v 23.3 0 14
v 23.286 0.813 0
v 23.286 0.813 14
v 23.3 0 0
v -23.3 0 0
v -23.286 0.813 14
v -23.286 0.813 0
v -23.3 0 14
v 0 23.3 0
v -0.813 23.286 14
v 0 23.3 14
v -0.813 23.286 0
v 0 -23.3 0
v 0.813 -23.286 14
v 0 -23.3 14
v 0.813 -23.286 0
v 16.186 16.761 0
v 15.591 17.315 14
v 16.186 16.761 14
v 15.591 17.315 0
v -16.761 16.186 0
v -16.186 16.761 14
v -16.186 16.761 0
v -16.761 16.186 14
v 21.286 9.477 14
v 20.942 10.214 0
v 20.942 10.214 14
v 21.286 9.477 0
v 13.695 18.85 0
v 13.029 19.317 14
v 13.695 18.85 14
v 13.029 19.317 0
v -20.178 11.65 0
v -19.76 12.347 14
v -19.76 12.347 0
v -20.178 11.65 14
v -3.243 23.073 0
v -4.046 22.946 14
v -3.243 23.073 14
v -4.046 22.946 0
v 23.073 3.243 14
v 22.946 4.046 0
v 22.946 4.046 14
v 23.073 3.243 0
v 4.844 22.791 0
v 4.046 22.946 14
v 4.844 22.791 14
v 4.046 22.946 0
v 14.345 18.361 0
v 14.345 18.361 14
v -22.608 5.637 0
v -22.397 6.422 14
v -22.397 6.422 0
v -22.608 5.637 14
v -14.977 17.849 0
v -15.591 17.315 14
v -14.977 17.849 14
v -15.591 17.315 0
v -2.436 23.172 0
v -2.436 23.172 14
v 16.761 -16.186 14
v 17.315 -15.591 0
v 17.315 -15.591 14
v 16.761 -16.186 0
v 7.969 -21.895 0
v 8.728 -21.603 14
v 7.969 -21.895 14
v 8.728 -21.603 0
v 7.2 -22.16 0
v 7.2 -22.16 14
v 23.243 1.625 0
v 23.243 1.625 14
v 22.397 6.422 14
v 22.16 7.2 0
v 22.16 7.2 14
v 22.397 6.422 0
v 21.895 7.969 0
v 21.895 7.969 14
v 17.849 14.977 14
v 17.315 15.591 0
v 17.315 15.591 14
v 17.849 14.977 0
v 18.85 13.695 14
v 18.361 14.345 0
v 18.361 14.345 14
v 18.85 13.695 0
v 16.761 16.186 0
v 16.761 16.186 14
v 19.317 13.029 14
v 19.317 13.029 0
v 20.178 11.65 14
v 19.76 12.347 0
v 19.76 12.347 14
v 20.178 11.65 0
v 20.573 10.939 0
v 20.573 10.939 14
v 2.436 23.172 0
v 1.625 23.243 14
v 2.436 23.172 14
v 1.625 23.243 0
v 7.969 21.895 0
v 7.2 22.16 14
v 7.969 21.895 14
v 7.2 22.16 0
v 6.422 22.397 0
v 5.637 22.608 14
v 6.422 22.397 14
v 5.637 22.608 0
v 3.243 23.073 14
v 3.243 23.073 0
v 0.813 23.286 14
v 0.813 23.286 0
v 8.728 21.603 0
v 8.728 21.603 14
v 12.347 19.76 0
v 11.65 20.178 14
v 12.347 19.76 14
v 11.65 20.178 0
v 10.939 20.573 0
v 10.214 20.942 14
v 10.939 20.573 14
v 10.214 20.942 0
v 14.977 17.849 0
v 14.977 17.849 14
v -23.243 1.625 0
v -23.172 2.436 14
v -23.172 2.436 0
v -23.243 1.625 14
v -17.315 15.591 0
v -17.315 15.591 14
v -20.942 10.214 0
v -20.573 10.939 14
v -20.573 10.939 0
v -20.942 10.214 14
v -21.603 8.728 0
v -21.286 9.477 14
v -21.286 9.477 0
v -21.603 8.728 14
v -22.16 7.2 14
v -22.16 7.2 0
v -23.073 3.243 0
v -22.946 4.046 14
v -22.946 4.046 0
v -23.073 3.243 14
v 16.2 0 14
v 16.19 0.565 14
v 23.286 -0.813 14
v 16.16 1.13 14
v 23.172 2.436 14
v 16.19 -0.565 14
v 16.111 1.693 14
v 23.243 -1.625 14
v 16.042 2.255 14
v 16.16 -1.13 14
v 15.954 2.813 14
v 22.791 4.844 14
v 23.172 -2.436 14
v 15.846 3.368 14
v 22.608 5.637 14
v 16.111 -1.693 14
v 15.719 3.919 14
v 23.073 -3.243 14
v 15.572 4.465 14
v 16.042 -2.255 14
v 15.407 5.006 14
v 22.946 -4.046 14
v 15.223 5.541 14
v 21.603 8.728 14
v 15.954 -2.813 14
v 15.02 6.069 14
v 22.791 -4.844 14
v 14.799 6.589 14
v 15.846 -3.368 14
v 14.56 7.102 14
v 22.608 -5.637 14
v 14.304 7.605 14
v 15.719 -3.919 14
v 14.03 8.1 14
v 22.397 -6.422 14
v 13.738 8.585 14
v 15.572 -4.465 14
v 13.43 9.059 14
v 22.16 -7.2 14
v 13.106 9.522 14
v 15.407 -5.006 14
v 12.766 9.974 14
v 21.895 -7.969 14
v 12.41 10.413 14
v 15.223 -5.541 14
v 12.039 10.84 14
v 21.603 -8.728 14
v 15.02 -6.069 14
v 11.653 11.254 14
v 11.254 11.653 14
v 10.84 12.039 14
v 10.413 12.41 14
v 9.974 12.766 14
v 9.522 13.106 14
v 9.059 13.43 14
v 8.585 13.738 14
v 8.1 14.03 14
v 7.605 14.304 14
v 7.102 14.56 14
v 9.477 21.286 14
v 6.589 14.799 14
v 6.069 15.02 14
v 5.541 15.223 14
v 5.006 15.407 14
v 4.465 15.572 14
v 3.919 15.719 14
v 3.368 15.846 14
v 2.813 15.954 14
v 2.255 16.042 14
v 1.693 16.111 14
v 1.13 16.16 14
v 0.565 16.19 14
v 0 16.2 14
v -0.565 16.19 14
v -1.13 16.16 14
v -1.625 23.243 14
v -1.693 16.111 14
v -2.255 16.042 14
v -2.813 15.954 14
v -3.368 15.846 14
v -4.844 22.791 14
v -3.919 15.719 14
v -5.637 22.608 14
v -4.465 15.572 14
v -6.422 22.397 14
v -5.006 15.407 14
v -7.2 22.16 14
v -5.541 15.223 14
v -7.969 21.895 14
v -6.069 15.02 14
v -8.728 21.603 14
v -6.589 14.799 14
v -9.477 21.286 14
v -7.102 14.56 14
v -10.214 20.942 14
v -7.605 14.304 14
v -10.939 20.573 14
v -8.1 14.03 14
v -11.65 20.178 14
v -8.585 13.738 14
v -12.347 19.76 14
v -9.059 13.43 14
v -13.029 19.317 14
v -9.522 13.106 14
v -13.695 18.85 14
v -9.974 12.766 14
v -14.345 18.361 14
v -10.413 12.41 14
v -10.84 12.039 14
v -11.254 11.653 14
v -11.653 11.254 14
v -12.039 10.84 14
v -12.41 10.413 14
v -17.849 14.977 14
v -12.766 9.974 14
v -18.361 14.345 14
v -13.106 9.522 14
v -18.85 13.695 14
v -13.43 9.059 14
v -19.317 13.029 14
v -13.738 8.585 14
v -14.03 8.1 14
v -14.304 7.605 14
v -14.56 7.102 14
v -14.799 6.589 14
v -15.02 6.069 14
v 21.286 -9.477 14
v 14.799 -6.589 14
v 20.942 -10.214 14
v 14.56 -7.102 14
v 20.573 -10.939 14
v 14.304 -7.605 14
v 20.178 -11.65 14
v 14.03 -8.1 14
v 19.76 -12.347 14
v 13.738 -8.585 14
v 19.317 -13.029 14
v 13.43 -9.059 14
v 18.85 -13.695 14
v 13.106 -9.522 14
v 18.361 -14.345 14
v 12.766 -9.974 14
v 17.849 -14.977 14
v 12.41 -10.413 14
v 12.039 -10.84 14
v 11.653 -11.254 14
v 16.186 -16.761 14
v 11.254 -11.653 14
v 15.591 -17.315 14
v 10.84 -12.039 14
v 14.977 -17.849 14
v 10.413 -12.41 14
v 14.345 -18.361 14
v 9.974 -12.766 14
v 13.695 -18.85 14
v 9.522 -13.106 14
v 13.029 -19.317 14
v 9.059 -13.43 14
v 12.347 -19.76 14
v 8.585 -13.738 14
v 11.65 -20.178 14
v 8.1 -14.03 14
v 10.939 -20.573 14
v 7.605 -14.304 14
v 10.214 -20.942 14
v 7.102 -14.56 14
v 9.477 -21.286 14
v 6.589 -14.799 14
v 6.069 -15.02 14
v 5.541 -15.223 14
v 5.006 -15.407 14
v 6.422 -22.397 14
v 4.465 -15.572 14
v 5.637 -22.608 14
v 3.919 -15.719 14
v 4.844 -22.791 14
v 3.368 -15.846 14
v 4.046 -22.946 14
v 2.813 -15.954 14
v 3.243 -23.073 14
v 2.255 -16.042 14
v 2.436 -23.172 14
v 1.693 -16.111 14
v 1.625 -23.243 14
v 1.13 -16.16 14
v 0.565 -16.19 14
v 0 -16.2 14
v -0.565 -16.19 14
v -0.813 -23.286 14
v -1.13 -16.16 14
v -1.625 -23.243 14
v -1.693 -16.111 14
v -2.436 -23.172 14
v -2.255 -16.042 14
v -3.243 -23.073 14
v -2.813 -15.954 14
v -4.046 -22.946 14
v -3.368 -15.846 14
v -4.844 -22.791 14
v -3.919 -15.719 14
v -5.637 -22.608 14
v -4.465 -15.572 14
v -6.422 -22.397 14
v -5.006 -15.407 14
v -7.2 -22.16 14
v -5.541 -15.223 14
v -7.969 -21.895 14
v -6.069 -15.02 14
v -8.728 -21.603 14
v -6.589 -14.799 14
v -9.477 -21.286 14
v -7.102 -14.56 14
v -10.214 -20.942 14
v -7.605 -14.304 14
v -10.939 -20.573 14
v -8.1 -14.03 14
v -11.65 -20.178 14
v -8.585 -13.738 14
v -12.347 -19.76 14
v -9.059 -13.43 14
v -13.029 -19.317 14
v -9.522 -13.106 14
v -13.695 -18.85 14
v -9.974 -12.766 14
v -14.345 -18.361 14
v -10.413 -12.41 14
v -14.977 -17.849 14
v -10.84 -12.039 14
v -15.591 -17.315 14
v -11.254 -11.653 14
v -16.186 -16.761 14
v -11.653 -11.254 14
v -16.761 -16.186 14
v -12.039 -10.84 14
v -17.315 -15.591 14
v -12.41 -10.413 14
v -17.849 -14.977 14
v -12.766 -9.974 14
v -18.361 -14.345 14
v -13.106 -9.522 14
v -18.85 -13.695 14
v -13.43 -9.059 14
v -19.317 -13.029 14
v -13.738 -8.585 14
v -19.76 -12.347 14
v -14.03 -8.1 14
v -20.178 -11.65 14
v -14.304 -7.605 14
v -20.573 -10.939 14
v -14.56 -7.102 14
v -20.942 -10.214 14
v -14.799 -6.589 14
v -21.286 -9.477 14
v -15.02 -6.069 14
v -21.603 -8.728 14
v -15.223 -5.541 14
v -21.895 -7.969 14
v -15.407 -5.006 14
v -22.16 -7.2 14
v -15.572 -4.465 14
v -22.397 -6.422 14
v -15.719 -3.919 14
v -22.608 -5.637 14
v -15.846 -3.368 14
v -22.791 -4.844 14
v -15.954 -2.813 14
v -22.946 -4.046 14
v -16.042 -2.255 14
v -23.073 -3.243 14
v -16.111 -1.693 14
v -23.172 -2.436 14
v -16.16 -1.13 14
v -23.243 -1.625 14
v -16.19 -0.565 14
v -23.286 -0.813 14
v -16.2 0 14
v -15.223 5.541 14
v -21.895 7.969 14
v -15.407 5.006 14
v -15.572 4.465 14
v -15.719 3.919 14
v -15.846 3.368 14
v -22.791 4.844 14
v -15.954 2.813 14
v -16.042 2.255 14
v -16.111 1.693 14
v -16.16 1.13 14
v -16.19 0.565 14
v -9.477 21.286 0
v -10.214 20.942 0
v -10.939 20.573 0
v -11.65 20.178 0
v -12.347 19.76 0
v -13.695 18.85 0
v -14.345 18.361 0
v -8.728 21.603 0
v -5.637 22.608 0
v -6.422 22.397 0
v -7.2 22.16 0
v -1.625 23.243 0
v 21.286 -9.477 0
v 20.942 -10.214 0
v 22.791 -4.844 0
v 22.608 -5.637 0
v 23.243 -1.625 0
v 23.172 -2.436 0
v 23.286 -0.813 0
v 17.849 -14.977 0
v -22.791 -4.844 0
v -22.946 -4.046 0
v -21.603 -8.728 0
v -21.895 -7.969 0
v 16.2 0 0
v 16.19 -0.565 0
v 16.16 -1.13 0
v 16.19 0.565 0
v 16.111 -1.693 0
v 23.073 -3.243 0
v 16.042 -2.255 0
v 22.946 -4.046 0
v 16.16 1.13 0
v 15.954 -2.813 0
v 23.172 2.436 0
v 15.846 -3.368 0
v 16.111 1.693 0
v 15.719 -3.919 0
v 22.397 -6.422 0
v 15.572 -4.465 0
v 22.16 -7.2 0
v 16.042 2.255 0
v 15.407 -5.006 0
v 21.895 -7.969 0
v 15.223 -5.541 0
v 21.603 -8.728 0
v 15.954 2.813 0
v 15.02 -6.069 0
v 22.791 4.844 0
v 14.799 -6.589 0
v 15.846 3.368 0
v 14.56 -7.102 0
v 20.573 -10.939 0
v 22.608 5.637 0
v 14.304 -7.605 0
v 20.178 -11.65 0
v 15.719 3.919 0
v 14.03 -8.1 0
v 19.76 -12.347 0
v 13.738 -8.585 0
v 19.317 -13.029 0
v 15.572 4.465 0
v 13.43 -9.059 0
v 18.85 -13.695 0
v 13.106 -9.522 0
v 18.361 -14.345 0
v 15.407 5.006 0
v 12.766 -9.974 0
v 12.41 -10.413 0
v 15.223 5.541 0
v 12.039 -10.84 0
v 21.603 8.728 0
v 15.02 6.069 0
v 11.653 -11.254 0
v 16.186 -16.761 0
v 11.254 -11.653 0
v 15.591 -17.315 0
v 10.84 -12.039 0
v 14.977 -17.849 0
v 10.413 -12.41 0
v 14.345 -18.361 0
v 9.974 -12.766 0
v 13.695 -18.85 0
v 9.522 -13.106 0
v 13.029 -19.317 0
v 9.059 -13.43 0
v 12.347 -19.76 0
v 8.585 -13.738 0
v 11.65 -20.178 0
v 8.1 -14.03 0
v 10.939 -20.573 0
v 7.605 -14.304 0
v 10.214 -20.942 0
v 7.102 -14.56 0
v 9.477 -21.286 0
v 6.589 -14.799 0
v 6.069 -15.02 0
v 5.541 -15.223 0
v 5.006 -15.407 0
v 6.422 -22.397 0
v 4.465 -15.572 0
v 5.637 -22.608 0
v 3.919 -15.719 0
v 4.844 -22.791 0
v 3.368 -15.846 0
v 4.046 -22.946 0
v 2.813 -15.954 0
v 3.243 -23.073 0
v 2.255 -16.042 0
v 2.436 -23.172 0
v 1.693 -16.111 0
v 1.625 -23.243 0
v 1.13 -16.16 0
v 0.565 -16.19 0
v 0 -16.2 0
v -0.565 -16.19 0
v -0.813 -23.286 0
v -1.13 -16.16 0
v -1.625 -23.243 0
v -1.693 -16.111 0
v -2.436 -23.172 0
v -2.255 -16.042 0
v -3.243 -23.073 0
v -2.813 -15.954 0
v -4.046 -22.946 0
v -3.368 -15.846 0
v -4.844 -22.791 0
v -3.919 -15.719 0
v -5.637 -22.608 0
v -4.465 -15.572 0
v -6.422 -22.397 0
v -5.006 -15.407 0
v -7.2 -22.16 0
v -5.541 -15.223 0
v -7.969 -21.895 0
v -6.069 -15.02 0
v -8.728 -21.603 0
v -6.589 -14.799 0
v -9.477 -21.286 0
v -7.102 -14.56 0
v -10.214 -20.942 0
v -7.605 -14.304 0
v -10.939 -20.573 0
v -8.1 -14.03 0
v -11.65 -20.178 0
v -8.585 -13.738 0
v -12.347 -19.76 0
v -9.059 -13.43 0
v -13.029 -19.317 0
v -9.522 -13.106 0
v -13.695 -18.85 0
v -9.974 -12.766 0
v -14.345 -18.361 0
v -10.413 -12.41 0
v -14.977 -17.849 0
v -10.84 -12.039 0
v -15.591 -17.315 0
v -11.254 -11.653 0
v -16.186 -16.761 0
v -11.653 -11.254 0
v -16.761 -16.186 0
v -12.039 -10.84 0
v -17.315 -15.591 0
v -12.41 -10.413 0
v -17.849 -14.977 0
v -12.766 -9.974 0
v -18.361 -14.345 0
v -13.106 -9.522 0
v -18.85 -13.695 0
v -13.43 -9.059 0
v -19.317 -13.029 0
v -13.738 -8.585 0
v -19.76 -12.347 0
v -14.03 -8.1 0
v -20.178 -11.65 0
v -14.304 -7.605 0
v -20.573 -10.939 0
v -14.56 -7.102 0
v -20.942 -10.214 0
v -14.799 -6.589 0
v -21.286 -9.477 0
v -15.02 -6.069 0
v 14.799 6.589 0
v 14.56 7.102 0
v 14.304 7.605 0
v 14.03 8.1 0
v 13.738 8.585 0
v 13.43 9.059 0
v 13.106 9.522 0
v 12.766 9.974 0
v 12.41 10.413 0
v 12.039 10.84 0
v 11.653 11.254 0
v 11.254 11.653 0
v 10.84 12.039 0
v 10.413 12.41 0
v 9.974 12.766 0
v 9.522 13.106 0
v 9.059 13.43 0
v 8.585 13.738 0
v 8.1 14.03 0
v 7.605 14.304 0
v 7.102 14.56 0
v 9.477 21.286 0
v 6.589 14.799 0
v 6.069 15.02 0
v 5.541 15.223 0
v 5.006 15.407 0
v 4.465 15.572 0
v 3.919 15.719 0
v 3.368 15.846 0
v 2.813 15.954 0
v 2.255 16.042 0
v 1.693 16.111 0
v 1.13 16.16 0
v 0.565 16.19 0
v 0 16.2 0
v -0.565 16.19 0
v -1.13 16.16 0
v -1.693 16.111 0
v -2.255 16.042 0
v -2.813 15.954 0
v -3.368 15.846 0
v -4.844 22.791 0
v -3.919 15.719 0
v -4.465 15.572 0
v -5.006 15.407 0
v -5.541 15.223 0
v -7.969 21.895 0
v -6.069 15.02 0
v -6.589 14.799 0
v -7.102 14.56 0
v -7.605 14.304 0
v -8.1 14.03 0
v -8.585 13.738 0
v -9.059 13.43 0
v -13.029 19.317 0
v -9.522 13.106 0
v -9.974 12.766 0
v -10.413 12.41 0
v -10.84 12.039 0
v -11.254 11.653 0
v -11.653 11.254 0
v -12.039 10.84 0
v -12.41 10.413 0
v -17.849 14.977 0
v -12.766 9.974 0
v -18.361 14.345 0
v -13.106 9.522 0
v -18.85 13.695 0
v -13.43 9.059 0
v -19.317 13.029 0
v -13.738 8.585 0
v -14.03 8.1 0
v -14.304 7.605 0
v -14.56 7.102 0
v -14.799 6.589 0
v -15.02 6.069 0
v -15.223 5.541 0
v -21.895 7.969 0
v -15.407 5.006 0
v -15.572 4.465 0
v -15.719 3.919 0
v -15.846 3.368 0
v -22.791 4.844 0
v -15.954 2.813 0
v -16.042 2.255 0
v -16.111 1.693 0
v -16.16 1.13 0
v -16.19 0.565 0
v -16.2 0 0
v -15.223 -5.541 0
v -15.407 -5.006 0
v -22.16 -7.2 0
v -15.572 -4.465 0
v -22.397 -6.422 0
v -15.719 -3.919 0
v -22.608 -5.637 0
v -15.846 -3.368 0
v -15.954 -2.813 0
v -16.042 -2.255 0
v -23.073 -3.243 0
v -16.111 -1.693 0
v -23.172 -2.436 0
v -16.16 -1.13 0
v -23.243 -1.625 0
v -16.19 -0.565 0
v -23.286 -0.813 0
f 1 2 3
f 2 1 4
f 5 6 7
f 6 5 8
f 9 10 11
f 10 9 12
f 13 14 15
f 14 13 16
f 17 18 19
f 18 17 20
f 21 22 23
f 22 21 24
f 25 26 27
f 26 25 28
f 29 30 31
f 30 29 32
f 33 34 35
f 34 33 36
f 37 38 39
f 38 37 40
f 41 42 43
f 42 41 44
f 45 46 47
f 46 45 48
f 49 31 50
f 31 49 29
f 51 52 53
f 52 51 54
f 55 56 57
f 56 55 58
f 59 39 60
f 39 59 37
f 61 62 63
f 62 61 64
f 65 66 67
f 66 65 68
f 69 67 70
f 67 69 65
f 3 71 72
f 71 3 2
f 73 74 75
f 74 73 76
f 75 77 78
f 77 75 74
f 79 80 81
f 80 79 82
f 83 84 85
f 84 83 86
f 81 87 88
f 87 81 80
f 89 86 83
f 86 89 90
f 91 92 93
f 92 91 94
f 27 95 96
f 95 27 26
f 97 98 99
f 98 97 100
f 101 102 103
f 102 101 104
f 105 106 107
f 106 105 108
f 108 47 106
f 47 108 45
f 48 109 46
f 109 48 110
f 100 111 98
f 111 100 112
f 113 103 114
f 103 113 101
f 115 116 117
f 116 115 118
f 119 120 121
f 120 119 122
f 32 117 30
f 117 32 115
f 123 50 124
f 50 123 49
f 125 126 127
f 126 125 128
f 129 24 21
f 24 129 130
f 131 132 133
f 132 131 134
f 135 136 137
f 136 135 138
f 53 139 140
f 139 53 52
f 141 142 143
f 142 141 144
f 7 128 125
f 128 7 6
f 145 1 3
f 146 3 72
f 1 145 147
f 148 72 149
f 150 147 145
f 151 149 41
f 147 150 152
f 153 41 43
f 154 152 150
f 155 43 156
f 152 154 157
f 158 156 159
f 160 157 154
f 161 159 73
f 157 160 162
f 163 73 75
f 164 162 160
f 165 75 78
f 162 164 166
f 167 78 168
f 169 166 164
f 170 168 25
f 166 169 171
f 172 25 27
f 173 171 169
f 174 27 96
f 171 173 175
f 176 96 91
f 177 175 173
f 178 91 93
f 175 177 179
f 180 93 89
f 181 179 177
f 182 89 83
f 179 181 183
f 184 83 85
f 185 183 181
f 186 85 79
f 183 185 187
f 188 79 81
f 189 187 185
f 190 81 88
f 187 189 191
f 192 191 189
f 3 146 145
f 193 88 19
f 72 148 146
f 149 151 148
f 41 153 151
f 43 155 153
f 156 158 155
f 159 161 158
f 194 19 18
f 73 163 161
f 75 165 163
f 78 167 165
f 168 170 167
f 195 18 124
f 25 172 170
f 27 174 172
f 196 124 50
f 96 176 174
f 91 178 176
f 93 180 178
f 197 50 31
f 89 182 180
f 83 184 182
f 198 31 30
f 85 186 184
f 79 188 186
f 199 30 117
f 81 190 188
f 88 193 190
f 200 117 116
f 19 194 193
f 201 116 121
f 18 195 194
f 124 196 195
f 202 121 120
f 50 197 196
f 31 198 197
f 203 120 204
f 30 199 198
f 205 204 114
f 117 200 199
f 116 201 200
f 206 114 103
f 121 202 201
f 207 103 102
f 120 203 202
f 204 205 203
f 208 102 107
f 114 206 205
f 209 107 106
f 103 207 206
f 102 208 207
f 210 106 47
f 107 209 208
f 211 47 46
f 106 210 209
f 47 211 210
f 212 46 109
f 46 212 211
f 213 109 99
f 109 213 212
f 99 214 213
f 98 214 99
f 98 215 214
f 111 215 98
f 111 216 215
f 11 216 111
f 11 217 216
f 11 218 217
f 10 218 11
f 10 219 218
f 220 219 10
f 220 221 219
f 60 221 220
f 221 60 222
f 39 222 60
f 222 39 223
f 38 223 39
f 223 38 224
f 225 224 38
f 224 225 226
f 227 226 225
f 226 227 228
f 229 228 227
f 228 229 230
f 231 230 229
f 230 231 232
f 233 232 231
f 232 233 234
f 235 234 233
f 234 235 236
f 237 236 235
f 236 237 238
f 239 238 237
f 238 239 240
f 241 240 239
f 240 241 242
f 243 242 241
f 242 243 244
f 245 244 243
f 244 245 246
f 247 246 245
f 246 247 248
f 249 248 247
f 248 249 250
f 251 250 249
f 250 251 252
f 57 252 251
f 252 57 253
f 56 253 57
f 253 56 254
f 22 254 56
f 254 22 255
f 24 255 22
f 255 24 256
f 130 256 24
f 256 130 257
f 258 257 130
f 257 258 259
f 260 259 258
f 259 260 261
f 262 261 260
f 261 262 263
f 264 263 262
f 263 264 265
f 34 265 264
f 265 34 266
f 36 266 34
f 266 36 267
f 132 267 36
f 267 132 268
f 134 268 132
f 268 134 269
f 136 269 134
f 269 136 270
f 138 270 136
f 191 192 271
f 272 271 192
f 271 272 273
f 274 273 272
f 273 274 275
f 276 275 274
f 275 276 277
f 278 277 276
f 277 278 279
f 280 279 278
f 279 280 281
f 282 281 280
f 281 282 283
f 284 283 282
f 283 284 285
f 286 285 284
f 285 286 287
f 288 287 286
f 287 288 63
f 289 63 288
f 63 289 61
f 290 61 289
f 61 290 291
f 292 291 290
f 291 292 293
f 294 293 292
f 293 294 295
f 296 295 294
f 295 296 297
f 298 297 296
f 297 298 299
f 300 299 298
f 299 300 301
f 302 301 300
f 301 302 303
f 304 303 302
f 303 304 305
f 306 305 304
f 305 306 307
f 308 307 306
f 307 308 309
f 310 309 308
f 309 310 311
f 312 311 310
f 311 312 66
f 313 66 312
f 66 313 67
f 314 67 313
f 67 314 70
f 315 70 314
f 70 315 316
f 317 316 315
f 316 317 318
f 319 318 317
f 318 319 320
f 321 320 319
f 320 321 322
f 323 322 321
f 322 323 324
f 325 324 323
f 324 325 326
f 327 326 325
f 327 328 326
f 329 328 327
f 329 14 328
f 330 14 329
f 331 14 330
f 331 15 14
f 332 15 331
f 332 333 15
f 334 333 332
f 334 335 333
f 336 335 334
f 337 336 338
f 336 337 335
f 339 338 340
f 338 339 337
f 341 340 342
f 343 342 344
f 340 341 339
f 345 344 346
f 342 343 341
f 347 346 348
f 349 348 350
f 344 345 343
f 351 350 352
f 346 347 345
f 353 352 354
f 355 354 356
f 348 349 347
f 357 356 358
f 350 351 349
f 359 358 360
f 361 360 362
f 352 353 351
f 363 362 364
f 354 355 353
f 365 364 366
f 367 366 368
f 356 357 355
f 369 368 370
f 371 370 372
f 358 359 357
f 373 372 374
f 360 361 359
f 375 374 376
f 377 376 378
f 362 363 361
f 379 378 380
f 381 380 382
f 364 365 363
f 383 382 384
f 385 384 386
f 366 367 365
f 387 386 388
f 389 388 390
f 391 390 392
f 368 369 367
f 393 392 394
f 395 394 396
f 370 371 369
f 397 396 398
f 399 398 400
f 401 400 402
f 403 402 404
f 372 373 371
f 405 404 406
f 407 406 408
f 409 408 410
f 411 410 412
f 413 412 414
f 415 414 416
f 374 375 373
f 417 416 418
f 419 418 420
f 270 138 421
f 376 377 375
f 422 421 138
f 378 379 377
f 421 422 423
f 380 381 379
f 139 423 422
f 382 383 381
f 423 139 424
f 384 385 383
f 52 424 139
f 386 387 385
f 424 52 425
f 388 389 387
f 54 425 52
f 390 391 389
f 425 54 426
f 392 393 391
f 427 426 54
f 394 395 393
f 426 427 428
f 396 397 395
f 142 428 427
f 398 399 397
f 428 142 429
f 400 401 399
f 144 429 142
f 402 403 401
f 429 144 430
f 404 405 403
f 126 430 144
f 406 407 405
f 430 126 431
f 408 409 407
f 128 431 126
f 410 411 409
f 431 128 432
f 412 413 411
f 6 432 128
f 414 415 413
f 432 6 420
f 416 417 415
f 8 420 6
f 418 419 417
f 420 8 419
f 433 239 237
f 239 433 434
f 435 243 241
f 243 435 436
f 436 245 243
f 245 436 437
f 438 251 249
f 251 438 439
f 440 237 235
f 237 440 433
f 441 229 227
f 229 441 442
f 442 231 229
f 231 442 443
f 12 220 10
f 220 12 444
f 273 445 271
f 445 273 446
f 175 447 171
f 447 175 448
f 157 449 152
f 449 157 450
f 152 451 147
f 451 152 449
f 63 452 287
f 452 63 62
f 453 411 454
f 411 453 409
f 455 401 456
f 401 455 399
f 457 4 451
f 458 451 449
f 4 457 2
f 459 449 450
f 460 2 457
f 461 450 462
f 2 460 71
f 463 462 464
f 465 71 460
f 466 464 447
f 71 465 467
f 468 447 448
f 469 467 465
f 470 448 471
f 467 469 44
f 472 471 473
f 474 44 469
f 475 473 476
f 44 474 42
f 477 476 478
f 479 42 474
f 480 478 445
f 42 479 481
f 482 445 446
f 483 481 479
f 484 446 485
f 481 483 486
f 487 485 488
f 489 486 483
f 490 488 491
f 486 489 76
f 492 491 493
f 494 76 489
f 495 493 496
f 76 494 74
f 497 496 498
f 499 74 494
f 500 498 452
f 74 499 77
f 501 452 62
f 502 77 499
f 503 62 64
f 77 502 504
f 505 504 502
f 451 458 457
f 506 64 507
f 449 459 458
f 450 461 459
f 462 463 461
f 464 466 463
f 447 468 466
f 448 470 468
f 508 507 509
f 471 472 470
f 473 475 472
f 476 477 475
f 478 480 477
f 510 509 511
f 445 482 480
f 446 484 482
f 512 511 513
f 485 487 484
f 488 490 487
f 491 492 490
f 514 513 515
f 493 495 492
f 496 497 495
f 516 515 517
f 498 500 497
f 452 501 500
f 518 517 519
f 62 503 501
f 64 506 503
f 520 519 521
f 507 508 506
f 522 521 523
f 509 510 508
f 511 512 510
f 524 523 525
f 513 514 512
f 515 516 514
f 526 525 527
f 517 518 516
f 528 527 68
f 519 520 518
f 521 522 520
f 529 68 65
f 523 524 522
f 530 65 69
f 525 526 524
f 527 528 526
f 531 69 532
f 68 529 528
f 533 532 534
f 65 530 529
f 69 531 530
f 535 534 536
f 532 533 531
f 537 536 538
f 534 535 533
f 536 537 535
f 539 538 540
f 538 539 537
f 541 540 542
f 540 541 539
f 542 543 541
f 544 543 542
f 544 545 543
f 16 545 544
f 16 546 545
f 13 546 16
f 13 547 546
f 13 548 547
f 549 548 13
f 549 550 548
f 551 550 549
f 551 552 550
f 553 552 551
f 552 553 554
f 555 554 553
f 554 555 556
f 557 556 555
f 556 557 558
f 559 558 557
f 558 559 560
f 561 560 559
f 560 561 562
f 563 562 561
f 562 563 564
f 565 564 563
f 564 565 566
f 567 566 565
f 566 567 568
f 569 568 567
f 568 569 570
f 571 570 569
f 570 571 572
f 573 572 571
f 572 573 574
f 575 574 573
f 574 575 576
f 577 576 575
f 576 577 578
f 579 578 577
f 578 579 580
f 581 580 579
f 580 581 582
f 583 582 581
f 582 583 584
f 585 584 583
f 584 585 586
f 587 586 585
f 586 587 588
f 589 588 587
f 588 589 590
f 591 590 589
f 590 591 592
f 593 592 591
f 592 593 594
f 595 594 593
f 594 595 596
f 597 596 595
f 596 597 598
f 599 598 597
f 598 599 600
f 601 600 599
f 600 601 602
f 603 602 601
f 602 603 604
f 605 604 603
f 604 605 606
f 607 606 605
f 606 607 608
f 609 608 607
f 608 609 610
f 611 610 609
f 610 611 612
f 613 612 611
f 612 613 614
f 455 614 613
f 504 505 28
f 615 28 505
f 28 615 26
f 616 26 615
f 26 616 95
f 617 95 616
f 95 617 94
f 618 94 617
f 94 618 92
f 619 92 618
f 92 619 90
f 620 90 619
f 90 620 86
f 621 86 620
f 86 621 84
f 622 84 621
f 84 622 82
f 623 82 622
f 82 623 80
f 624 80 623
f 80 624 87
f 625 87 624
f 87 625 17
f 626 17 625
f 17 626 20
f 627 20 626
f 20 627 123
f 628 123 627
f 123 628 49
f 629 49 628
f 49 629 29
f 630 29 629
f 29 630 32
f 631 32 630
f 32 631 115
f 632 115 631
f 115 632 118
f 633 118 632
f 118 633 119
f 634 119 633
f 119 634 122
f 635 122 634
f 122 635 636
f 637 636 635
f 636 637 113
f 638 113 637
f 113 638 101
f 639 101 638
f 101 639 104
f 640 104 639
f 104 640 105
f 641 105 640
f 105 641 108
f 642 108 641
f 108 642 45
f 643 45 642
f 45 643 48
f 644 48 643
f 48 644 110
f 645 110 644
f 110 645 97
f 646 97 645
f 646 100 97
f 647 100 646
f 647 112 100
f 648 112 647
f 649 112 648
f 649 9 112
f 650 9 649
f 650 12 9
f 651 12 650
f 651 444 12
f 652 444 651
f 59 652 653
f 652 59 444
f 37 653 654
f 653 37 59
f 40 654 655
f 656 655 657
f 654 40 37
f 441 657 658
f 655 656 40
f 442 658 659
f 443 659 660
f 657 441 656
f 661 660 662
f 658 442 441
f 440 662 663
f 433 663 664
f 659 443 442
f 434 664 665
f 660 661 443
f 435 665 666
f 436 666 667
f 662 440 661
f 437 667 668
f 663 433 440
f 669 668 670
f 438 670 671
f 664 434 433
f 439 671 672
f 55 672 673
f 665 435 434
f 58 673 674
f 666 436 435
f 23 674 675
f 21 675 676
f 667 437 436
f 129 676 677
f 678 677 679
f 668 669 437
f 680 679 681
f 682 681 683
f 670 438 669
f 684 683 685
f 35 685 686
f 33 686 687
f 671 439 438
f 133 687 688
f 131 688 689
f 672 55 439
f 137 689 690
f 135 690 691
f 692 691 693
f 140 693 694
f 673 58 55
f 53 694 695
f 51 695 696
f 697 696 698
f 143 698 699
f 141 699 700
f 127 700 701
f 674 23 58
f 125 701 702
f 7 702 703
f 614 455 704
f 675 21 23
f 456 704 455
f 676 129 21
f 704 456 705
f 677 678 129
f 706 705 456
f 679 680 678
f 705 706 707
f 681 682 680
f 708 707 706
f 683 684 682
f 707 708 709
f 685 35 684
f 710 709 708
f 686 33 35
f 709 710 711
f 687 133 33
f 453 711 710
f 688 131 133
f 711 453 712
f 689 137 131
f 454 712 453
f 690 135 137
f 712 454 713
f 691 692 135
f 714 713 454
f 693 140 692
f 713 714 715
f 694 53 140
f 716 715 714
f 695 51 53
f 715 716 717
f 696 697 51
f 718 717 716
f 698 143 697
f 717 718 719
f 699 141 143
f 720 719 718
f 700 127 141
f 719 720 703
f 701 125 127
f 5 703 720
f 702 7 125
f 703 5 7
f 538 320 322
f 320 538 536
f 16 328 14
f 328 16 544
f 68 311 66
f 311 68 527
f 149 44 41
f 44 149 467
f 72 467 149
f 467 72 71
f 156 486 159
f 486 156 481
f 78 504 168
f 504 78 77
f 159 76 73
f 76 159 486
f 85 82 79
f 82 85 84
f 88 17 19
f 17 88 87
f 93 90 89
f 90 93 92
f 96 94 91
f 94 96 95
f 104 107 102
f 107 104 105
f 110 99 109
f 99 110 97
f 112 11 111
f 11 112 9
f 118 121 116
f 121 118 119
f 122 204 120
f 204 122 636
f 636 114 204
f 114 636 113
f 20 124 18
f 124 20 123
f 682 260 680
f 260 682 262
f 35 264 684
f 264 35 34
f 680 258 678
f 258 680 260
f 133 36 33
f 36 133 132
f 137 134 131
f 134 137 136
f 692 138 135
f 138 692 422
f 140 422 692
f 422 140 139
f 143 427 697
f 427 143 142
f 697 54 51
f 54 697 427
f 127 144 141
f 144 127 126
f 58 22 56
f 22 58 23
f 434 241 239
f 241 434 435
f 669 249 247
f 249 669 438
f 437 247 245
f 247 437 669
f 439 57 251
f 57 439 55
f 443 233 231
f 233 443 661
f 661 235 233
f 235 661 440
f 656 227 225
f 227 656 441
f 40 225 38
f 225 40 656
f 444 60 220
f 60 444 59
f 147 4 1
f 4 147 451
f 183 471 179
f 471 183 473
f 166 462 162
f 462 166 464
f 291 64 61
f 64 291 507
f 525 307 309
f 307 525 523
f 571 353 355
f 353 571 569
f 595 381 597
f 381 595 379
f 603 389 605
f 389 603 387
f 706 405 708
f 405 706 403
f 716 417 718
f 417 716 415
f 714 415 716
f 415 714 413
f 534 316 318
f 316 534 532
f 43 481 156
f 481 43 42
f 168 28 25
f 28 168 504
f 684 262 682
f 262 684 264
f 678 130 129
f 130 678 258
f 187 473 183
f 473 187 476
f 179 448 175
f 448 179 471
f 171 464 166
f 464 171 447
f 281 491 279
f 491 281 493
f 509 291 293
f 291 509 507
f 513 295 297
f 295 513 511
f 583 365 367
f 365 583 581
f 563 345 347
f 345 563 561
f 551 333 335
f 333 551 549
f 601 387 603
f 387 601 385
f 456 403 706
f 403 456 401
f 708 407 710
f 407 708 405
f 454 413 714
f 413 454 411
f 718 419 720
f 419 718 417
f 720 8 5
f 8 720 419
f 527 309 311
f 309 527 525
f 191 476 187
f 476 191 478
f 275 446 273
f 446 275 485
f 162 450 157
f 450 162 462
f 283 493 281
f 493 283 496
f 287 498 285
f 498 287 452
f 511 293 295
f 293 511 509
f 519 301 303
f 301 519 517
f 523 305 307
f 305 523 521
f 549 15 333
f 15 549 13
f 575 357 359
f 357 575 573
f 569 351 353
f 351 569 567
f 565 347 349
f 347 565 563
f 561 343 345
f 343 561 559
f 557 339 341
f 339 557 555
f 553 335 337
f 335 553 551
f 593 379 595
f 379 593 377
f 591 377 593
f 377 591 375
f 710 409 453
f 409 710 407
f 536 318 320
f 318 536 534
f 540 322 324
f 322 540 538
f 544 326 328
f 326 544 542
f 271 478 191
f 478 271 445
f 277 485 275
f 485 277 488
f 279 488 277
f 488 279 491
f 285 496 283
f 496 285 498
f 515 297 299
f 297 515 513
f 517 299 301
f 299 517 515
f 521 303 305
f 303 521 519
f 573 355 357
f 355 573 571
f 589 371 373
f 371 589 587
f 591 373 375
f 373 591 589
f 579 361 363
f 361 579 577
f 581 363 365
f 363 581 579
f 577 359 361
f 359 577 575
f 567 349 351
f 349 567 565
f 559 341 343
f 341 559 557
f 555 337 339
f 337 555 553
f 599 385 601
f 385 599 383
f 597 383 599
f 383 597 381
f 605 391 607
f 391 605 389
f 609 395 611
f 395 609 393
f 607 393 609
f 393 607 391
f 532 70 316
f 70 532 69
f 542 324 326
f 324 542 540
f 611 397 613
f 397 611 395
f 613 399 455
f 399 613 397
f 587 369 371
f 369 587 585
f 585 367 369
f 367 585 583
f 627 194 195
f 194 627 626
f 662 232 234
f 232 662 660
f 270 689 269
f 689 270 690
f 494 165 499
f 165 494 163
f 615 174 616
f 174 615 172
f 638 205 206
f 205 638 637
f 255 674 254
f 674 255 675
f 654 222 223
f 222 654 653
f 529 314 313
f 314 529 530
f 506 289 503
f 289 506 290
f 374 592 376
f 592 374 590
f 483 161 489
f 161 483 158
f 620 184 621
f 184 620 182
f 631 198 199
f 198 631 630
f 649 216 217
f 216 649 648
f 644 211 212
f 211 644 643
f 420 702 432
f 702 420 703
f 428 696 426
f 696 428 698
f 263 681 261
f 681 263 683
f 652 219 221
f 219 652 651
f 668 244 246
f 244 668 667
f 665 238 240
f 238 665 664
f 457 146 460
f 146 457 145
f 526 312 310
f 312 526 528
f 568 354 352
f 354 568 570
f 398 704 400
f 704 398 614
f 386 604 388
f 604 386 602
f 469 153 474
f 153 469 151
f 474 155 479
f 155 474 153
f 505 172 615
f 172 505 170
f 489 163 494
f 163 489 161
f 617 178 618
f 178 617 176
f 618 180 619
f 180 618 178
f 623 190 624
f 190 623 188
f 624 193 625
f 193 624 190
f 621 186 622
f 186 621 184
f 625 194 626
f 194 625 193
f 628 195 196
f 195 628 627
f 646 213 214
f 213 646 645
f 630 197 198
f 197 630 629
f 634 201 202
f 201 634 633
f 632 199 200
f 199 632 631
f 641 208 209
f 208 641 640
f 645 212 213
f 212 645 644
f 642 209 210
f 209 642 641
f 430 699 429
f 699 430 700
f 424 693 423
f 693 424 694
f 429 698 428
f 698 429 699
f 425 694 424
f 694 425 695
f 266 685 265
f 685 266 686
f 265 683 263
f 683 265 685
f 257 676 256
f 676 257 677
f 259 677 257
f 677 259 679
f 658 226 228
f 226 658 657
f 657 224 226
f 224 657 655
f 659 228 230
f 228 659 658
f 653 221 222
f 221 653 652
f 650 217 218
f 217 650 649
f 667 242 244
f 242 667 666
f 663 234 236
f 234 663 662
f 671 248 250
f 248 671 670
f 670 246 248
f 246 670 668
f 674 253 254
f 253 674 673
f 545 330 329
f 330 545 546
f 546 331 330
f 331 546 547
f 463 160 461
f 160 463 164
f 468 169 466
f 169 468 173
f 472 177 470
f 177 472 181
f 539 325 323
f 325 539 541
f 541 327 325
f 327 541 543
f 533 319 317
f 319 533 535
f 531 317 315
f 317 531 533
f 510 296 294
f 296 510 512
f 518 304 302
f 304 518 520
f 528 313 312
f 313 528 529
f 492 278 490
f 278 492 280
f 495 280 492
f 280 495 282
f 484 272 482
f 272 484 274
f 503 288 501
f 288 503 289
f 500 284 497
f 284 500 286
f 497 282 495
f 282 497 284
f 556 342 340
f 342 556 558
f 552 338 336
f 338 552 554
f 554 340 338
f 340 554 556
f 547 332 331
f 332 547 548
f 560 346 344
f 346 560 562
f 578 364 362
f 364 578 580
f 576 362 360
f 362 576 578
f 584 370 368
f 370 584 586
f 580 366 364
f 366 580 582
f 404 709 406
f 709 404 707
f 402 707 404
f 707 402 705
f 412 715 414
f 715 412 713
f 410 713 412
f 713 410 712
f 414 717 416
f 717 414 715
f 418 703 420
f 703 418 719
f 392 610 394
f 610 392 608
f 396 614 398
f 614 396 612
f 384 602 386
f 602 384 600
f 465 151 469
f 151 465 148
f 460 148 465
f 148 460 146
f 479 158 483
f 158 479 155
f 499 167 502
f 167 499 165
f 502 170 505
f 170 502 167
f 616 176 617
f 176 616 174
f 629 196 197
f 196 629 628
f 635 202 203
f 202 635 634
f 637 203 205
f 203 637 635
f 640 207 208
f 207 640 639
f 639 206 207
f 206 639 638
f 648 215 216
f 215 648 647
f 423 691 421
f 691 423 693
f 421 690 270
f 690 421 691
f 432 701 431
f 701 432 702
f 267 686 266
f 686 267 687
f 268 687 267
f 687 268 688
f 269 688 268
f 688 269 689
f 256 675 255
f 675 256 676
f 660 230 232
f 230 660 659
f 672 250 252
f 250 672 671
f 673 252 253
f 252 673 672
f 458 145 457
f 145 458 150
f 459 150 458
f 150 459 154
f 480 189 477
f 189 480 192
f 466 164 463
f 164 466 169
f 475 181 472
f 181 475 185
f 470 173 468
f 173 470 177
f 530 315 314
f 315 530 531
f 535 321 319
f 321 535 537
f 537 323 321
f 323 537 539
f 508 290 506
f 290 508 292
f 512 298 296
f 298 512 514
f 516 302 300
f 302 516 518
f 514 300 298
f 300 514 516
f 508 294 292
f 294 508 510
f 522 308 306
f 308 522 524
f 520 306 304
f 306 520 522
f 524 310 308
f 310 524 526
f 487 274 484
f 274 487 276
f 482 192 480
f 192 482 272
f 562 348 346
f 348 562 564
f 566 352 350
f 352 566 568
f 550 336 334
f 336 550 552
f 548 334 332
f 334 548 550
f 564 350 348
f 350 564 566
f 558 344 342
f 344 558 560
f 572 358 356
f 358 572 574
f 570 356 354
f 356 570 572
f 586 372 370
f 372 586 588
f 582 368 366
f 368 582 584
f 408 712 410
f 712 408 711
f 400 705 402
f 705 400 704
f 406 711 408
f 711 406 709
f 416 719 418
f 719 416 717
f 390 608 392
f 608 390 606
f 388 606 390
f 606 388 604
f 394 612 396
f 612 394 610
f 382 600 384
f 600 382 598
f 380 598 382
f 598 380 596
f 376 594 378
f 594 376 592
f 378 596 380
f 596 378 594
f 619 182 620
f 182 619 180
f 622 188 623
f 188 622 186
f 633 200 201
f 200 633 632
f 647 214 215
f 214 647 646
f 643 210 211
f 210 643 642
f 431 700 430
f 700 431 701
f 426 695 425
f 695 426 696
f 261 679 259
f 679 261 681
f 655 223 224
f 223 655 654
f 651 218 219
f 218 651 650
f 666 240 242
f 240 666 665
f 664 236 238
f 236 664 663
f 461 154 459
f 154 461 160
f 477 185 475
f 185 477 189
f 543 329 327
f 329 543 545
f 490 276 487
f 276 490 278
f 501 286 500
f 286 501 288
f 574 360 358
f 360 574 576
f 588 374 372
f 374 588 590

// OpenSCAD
$fn=180;

H=14;
out_diam=46.6;
in_diam=32.4;

difference(){
    cylinder(h=H, d=out_diam);
    cylinder(h=H, d=in_diam);
}
